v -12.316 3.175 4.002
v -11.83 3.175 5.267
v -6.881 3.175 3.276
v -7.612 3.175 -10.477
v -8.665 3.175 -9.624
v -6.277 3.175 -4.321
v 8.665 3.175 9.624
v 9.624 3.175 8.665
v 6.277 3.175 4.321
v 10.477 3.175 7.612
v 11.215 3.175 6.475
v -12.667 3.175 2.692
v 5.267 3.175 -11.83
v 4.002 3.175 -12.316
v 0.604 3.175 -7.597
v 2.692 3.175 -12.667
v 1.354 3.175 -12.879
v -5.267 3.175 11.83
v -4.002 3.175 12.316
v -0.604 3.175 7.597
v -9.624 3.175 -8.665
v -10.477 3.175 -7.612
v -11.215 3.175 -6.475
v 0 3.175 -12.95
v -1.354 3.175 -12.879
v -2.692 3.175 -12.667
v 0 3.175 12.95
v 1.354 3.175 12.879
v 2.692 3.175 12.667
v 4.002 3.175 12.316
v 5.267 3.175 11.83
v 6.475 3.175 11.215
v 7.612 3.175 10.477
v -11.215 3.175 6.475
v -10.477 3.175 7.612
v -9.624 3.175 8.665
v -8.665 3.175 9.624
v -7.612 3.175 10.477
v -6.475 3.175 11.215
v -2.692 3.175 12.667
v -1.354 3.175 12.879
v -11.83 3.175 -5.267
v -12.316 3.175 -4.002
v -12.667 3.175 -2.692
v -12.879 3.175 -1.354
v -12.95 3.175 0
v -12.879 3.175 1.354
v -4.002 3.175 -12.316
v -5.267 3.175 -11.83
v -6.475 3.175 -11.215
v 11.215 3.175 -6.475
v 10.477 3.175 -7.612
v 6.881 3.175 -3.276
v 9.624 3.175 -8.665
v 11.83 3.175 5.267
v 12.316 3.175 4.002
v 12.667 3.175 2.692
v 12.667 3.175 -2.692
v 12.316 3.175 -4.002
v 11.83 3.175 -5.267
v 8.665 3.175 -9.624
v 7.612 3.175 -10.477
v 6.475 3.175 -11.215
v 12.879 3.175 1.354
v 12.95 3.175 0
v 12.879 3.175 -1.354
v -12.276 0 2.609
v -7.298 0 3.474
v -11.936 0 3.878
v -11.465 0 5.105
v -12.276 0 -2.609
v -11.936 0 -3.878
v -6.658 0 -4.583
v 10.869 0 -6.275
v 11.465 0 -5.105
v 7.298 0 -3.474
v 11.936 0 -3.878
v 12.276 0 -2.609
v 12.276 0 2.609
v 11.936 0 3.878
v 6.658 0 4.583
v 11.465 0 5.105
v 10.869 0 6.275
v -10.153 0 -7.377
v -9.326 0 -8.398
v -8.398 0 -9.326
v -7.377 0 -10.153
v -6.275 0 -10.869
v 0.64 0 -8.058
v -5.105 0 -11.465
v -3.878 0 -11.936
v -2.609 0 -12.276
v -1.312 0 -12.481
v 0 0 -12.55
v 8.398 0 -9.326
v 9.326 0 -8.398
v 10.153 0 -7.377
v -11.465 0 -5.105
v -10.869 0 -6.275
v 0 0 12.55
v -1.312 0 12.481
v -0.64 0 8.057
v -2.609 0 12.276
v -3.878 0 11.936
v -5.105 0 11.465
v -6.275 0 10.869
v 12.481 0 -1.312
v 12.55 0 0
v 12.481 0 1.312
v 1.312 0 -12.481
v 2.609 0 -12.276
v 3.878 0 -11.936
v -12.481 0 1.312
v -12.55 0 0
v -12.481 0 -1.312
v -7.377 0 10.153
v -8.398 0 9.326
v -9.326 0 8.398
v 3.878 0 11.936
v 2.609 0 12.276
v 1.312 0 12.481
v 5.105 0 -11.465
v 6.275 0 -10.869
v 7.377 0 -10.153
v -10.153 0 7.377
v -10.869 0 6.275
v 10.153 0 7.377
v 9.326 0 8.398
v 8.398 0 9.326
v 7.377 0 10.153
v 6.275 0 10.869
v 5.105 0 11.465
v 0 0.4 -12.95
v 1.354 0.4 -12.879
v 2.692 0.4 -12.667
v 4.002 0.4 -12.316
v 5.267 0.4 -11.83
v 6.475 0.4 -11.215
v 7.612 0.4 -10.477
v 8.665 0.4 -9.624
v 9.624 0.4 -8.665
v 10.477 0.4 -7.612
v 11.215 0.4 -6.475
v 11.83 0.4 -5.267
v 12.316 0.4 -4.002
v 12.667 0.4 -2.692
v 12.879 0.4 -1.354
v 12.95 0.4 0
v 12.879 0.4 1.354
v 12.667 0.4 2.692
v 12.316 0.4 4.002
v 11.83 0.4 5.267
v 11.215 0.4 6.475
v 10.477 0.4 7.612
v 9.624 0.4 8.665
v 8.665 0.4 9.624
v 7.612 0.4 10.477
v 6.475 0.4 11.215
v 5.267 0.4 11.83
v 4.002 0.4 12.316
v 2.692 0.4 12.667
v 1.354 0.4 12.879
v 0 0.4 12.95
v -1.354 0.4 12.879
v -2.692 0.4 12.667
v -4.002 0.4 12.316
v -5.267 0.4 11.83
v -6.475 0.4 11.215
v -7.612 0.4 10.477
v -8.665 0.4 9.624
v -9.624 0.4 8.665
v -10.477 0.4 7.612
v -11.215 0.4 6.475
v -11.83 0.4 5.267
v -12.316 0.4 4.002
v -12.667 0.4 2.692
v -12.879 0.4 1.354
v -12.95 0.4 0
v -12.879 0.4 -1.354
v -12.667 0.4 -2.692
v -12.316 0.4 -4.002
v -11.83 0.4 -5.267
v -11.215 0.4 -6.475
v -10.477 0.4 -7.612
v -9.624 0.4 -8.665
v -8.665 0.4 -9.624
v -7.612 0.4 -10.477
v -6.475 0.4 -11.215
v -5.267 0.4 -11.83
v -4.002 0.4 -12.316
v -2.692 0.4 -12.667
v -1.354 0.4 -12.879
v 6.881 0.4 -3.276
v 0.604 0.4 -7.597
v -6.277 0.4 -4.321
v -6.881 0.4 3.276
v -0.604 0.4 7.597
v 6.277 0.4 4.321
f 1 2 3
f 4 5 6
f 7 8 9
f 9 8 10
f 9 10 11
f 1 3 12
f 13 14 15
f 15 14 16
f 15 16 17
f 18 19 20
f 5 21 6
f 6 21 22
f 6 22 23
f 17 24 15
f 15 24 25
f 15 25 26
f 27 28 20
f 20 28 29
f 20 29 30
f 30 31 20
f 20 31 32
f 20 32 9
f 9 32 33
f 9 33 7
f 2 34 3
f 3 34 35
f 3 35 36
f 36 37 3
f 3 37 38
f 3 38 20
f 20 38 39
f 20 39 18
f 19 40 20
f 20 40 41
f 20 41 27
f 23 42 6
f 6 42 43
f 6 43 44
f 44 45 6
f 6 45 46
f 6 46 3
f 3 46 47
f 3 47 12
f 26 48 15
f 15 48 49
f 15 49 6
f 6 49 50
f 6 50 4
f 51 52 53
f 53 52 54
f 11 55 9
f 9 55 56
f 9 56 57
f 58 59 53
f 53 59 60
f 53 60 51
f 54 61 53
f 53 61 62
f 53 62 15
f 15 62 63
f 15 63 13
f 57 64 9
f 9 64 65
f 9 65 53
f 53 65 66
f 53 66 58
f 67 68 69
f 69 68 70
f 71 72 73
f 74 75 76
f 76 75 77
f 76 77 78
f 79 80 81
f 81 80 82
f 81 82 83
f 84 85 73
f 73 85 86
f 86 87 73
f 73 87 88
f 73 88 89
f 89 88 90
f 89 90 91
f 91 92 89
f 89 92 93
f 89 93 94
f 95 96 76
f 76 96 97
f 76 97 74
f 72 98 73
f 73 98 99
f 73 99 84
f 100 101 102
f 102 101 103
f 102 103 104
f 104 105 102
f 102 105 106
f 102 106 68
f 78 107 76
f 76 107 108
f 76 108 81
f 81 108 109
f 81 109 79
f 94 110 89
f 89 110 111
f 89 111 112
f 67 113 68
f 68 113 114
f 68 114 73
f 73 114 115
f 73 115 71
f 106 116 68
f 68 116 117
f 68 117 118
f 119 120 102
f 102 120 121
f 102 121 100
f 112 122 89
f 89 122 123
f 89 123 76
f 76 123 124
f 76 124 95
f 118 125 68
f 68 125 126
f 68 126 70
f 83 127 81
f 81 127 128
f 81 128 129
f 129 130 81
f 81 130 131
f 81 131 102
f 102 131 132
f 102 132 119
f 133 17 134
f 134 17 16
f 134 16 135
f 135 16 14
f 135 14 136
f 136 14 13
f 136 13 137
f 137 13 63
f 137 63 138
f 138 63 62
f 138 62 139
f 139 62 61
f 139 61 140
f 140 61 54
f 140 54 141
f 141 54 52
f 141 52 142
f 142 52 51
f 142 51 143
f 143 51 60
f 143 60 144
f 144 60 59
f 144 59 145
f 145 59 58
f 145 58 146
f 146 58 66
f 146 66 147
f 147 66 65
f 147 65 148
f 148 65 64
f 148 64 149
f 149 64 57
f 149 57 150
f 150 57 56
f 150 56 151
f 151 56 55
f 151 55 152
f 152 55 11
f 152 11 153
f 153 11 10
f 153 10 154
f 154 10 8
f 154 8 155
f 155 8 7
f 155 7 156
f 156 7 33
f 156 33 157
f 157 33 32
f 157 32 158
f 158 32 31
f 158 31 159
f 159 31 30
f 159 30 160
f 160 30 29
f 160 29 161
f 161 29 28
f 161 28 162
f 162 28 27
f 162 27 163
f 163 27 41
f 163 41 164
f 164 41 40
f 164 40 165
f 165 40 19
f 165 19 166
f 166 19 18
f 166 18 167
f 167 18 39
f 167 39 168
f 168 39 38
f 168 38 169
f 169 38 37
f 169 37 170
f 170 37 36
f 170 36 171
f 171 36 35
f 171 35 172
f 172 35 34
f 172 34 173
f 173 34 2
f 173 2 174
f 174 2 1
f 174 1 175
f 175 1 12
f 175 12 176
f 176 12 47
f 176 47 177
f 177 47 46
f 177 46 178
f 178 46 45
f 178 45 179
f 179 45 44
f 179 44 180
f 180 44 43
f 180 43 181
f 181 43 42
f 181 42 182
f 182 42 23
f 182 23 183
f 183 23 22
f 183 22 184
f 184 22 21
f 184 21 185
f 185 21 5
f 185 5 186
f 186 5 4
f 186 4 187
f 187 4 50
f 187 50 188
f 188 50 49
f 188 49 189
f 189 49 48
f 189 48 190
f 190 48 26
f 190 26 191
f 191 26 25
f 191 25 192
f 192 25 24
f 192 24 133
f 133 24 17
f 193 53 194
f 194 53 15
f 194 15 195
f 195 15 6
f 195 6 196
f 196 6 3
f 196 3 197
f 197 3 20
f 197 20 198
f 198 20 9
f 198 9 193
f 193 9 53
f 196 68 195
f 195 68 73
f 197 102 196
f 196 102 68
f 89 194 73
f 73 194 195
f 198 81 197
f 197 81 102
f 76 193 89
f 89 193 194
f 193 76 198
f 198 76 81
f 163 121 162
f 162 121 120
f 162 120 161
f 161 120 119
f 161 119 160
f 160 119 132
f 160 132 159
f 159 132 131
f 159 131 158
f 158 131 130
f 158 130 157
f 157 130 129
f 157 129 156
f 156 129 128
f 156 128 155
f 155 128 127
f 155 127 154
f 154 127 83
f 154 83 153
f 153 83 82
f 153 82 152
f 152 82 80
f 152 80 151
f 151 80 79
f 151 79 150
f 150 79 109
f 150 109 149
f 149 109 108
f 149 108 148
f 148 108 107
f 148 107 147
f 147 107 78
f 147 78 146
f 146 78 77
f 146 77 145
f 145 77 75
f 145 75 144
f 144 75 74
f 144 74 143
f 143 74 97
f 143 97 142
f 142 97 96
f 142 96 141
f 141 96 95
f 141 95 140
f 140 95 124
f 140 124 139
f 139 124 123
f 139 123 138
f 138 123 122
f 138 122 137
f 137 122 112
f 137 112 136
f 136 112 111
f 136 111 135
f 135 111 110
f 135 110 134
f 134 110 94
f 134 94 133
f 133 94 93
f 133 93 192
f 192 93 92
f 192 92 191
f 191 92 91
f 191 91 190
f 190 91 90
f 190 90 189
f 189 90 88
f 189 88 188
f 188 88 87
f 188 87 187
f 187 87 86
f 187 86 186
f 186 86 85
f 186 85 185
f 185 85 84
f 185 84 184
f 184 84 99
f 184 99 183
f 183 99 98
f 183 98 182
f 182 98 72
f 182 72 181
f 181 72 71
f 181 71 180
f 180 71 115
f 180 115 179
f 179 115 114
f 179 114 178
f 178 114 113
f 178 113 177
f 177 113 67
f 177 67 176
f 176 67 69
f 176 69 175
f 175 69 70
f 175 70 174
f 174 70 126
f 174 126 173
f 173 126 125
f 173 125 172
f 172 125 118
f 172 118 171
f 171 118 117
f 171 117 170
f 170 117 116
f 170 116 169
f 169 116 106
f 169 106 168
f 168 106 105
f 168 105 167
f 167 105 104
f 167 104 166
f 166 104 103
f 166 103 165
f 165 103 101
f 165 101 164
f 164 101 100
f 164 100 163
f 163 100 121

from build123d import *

# Parameters (mm, degrees)
SKETCH1_R           = 12.95
BOSS_EXTRUDE1_DEPTH = 3.175
CHAMFER1_SIZE       = 0.4


with BuildPart() as part:
    # Sketch1 → Boss-Extrude1 (new body)
    with BuildSketch(Plane(origin=(0, 0, 0), x_dir=(1, 0, 0), z_dir=(0, 1, 0))):
        with Locations(Location((0, 0, 0), (0, 0, 270))):
            Circle(SKETCH1_R)
        Polygon((0.60374079, 7.597071611), (-6.277386614, 4.321390667), (-6.881127404, -3.275680944), (-0.60374079, -7.597071611), (6.277386614, -4.321390667), (6.881127404, 3.275680944), align=None, mode=Mode.SUBTRACT)
    extrude(amount=BOSS_EXTRUDE1_DEPTH)

    # Chamfer1
    chamfer1_edges = [part.edges().sort_by_distance(p)[0] for p in [
        (-6.579257009, 0, -0.522854862),
        (-3.742434097, 0, 5.436376277),
        (2.836822912, 0, 5.959231139),
        (6.579257009, 0, 0.522854862),
        (0, 0, -12.95),
        (3.742434097, 0, -5.436376277),
        (-2.836822912, 0, -5.959231139),
    ]]
    chamfer(chamfer1_edges, length=CHAMFER1_SIZE)


solid = part.part
